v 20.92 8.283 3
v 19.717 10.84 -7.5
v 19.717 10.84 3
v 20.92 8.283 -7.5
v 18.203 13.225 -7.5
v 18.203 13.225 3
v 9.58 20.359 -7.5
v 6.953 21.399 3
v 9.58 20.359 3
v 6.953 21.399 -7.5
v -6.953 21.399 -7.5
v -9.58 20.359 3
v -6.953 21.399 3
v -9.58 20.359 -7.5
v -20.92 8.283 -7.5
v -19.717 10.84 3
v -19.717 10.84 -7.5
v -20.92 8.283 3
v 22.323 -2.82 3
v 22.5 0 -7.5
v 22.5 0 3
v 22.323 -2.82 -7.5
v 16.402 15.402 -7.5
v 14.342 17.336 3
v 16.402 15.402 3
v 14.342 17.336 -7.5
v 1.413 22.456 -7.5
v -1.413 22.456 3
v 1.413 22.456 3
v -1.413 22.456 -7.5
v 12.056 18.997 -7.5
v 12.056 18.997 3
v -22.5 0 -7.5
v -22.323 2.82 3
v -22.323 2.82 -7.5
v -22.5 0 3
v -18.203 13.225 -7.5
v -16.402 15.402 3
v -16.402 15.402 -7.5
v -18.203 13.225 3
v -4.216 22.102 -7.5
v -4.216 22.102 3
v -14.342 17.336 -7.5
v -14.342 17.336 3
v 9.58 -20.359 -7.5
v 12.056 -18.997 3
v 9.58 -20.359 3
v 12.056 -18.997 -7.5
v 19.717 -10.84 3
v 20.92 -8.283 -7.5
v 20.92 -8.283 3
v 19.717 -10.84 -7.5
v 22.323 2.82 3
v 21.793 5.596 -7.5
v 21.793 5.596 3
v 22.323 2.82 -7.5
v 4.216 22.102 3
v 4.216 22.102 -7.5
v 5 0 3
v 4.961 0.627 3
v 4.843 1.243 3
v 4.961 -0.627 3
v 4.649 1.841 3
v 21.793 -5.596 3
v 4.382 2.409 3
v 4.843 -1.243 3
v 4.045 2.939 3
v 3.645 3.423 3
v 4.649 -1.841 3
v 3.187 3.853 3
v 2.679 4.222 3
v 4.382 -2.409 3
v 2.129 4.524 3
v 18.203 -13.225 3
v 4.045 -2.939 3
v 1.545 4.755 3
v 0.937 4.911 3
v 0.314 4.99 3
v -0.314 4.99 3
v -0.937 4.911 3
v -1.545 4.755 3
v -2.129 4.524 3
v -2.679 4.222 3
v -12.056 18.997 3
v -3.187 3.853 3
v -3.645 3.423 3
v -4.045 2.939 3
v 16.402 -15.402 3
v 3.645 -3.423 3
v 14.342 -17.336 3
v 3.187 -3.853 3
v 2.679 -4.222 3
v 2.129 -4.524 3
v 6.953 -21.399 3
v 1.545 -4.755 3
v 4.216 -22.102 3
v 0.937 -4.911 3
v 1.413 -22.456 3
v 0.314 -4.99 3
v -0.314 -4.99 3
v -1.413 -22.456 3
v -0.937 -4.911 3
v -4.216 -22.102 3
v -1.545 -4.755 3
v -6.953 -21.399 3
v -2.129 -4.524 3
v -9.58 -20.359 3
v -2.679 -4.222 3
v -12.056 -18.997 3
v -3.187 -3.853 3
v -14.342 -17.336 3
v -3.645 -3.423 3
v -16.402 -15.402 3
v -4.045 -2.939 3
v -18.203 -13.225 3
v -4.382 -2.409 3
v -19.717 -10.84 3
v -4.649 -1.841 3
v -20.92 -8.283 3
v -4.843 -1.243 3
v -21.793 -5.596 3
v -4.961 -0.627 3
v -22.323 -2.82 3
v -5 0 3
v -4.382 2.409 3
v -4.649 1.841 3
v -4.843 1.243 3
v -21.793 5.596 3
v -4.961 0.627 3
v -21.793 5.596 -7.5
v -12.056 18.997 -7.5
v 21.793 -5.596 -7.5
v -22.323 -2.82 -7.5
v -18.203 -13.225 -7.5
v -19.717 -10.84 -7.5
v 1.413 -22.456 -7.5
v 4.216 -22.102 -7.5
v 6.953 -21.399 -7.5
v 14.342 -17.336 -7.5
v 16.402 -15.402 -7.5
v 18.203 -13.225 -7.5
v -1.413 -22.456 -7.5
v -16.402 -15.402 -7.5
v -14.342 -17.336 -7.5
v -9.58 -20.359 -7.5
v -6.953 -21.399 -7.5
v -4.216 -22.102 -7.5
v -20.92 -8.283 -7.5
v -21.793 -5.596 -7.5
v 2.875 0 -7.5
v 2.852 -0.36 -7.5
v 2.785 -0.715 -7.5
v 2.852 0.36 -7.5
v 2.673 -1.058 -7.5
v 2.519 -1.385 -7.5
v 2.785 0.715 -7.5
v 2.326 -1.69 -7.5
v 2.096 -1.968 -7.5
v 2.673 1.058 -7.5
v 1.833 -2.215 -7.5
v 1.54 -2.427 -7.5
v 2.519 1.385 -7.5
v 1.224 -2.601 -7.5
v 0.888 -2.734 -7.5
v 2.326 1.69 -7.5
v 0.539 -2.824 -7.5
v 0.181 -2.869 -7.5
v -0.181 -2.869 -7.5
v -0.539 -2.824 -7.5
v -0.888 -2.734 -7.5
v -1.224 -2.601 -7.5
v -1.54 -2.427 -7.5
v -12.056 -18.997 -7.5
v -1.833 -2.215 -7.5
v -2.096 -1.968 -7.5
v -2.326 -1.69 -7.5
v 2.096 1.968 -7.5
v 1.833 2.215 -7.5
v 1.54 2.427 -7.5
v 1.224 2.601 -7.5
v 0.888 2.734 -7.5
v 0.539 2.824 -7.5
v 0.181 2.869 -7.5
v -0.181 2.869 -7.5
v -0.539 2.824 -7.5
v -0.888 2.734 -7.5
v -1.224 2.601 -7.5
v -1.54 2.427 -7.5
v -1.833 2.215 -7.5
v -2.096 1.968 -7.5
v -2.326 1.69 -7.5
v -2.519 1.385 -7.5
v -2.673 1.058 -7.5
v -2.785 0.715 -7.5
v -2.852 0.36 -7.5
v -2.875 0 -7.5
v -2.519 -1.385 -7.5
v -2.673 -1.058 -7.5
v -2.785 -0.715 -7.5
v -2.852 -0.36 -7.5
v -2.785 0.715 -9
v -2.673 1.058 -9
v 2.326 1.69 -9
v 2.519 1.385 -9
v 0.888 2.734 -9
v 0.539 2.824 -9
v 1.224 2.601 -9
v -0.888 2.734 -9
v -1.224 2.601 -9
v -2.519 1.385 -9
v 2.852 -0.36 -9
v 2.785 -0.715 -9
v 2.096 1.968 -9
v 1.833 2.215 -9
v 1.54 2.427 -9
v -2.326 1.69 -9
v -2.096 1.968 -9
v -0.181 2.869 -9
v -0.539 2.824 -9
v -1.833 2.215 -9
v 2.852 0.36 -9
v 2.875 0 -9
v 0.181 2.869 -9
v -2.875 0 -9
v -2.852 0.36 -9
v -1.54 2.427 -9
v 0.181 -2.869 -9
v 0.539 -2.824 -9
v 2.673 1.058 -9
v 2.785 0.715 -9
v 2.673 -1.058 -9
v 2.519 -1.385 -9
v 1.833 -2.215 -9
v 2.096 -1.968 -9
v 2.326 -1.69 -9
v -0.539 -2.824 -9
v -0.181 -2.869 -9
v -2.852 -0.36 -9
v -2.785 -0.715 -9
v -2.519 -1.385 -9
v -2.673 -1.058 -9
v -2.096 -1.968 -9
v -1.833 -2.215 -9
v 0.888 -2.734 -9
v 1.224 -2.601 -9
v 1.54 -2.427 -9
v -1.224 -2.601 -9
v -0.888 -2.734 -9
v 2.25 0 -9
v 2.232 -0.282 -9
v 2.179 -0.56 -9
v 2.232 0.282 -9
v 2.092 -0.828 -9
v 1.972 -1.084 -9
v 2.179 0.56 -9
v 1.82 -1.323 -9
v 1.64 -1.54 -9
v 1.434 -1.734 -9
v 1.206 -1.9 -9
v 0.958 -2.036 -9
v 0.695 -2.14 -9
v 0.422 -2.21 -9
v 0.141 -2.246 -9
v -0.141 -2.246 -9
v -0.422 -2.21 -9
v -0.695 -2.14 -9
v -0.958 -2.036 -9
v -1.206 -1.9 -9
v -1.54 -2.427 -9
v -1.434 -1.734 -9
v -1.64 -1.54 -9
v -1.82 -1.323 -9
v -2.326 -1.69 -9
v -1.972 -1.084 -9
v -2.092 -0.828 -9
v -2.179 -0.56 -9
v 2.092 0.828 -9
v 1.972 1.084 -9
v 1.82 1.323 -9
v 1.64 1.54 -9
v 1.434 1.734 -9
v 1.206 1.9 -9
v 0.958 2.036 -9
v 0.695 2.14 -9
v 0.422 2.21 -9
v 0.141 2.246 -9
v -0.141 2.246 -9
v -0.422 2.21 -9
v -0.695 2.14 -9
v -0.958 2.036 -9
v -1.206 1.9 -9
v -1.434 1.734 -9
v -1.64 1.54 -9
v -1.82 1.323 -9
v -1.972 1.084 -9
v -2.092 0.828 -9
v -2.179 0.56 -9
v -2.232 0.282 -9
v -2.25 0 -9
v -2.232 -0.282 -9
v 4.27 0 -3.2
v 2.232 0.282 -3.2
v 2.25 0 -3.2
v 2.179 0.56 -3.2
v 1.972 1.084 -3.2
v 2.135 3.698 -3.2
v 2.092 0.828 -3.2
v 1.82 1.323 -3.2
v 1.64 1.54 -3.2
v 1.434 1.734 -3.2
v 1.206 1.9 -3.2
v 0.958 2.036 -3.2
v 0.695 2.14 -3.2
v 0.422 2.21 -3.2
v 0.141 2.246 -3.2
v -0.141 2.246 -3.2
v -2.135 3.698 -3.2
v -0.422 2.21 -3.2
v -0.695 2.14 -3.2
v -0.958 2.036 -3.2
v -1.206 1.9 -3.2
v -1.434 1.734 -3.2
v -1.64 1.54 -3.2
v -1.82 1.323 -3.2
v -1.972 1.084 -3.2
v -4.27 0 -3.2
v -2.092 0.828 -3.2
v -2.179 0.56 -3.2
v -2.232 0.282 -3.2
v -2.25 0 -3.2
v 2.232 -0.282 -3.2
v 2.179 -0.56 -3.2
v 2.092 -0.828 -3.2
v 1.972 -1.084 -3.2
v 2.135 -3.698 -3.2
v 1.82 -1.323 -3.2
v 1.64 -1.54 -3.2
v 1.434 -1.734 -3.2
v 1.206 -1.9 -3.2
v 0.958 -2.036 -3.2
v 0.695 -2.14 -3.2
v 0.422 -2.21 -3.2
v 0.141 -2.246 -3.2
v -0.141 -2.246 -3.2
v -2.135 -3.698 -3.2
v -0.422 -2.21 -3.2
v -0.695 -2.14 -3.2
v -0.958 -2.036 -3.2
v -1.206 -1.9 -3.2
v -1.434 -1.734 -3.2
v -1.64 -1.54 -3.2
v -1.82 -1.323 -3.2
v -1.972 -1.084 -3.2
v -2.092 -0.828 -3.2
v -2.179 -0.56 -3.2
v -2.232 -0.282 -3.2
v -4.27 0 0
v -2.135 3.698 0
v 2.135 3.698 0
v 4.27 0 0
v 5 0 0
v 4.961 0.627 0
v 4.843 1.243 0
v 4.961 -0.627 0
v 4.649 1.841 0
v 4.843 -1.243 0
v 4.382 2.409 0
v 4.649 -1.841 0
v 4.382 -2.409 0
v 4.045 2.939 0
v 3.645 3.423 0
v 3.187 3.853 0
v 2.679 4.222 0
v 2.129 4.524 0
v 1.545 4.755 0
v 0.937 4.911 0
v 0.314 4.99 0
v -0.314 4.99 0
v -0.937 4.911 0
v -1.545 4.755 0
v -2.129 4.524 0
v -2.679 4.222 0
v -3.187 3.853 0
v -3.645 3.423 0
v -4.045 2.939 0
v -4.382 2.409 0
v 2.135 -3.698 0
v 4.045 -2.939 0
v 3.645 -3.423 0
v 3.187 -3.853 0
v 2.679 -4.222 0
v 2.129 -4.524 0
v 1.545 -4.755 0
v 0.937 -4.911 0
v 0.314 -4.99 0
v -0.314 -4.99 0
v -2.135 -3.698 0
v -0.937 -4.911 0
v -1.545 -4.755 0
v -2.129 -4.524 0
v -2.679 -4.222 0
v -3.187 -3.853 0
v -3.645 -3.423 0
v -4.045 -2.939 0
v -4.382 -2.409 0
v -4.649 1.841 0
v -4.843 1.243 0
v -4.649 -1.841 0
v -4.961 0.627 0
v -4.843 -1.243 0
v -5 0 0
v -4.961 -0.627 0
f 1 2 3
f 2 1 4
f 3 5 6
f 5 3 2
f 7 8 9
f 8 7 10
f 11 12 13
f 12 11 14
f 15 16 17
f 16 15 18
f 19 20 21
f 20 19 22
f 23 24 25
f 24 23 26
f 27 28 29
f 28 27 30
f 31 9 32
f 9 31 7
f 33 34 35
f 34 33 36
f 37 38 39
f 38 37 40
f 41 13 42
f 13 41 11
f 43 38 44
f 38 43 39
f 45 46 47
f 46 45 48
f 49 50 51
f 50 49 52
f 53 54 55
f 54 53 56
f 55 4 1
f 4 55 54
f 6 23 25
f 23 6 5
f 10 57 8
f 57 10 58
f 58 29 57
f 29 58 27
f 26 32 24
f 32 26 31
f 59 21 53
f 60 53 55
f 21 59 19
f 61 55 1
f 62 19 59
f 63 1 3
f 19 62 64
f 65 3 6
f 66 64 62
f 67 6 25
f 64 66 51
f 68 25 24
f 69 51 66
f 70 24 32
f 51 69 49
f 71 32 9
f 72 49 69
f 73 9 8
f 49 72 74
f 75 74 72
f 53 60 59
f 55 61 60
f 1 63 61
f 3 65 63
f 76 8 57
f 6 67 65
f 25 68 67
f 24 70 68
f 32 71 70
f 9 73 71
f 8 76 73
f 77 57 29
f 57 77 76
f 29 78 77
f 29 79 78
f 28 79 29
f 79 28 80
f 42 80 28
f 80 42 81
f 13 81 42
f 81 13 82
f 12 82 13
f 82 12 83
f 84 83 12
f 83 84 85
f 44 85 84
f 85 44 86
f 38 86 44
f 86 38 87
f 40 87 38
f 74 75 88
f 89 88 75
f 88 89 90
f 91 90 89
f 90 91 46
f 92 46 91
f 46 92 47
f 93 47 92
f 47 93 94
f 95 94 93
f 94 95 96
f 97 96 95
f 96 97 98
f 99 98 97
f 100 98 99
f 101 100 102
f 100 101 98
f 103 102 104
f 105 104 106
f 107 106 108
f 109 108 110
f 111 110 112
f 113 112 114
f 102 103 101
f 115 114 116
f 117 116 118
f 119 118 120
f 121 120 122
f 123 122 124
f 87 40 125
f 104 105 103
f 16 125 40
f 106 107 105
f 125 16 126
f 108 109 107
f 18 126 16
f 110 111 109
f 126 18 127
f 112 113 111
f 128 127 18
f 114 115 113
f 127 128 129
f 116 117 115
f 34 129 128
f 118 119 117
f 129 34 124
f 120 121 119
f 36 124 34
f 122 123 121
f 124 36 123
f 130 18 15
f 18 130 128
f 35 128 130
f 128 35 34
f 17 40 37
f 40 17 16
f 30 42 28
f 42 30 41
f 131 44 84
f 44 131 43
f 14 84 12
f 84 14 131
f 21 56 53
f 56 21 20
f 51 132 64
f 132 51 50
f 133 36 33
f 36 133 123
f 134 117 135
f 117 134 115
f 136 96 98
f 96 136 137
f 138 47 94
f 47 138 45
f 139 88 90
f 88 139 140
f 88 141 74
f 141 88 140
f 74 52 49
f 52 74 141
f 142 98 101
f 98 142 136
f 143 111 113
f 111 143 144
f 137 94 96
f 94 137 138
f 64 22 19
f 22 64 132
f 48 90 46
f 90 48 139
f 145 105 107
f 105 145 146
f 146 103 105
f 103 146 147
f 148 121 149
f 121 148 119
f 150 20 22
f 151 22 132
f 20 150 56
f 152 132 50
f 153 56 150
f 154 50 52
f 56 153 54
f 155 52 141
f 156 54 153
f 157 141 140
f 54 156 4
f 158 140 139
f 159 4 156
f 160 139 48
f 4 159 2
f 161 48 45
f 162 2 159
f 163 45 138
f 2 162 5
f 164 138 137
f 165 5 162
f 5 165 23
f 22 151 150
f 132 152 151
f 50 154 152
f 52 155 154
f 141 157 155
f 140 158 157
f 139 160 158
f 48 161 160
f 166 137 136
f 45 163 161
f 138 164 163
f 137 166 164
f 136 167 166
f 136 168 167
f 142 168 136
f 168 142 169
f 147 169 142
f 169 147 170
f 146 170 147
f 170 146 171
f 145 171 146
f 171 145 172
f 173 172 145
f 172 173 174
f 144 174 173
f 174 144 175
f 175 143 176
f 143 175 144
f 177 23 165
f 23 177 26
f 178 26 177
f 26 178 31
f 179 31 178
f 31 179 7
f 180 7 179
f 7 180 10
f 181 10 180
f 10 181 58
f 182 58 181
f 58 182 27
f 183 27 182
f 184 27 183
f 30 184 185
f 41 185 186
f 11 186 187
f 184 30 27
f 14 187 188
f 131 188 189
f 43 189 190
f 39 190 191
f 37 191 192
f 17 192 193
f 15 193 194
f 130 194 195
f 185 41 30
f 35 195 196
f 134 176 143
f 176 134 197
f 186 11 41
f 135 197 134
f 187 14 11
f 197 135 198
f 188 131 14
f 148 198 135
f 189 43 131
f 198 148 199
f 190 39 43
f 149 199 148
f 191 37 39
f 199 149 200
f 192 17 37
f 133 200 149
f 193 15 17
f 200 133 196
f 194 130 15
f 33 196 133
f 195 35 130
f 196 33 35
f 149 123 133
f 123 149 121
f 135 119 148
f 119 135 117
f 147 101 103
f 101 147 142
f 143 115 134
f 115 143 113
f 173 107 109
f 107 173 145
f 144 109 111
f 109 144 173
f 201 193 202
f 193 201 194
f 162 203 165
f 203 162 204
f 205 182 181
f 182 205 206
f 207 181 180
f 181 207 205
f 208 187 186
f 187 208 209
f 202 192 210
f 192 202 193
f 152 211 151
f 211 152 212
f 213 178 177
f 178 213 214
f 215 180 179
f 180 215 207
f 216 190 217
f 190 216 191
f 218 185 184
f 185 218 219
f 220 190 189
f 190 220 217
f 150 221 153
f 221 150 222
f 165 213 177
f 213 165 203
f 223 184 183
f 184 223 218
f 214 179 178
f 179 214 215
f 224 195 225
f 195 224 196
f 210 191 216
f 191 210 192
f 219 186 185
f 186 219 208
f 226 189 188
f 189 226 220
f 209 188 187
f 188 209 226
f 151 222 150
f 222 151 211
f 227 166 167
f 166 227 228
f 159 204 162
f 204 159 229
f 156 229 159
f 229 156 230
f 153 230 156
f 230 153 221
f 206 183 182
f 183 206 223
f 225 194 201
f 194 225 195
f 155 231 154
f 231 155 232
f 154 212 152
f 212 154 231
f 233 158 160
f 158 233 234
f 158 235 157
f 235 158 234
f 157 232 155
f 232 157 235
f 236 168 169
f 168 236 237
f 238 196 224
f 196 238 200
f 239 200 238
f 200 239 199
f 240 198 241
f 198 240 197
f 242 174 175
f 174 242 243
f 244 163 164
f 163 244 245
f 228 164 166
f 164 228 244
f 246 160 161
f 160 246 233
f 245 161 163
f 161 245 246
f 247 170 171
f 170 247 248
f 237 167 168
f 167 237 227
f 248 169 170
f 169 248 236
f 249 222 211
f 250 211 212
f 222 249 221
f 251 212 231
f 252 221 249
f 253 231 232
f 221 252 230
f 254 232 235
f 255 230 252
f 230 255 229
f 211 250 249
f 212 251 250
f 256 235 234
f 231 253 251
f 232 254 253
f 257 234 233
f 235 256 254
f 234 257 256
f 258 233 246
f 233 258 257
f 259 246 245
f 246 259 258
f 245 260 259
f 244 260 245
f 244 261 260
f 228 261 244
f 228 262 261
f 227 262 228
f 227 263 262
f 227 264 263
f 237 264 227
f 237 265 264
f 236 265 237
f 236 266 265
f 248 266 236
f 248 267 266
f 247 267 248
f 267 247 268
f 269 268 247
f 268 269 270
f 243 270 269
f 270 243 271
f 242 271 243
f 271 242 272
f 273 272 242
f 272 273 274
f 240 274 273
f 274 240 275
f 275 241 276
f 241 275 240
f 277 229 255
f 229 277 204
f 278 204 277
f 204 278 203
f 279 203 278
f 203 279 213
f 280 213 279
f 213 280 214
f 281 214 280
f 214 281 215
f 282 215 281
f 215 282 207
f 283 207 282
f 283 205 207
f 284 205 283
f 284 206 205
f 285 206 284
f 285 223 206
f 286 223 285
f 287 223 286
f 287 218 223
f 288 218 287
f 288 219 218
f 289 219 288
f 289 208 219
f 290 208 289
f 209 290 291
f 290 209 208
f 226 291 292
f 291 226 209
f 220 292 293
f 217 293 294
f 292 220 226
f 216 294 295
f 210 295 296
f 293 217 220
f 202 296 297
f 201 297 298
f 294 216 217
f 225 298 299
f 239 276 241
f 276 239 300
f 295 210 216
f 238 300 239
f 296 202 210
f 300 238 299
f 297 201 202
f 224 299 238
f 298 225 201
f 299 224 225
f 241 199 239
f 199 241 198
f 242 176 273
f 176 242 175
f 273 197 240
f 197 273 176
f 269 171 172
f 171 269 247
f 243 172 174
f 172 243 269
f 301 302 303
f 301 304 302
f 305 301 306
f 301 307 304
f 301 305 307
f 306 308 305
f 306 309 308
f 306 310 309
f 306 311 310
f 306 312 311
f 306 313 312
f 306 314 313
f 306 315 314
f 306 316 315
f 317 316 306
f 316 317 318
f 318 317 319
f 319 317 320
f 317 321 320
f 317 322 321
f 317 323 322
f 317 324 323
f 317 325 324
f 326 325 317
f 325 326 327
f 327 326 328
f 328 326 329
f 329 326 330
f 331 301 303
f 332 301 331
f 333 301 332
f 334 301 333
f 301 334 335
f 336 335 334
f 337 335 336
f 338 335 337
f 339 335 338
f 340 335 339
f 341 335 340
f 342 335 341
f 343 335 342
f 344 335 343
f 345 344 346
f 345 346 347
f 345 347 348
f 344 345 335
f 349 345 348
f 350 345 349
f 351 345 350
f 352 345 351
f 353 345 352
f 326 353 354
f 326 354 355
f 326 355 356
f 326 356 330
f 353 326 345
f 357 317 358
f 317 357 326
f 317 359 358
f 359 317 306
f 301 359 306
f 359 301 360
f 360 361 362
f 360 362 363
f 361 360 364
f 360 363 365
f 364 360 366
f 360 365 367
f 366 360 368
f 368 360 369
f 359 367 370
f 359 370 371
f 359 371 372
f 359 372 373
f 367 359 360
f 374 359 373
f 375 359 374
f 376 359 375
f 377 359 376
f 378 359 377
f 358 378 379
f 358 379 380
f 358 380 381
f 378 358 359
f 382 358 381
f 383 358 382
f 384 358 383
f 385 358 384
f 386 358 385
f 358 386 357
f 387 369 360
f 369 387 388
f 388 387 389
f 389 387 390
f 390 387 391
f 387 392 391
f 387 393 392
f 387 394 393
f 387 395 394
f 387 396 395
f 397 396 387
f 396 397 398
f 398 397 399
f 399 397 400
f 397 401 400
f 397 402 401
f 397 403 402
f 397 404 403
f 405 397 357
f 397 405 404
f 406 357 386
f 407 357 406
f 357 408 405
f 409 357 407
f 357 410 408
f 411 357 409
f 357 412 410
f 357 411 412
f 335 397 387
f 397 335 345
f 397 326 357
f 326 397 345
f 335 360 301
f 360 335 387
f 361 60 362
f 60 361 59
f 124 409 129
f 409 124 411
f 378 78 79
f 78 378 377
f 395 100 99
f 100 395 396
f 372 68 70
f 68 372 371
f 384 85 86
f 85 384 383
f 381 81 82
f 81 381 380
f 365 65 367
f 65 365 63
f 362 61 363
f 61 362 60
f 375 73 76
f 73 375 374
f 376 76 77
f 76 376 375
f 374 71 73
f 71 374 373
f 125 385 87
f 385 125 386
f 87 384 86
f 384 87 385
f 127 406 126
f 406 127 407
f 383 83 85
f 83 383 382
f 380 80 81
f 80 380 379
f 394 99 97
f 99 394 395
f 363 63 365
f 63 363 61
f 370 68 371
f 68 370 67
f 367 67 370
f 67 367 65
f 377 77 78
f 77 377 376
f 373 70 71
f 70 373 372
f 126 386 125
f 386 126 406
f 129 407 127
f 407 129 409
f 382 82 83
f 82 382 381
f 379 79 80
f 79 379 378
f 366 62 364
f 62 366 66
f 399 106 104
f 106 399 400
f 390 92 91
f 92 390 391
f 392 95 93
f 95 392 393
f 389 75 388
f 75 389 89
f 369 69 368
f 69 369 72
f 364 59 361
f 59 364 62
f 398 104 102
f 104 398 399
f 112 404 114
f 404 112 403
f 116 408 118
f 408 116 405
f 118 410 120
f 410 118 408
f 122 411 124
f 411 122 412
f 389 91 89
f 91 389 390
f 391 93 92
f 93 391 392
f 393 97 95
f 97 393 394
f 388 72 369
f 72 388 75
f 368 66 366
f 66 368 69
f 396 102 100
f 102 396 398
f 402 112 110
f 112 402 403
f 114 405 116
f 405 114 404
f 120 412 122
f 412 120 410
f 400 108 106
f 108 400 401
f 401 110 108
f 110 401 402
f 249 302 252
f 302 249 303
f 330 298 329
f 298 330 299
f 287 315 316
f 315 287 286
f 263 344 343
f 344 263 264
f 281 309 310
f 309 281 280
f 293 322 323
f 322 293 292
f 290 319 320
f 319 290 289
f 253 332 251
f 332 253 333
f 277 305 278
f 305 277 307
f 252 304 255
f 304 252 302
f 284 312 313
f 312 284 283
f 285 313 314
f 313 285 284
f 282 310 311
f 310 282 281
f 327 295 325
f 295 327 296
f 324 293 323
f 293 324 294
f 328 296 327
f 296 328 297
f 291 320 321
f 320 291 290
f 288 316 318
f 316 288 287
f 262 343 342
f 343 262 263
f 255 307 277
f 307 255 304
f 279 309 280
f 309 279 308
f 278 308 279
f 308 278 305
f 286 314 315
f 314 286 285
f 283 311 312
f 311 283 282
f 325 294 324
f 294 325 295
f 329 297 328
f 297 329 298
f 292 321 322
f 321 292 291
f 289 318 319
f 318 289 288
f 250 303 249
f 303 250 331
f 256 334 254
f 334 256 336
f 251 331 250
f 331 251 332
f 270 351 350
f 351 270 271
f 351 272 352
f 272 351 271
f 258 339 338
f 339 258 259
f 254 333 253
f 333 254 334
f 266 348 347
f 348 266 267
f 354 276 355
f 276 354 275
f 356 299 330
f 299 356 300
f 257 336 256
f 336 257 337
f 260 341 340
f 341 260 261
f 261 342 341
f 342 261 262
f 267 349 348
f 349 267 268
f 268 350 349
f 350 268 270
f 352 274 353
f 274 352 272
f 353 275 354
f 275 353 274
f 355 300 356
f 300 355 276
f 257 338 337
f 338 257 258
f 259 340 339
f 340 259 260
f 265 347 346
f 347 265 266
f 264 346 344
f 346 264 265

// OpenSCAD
$fn = 50;


difference() {
	union() {
		translate(v = [0, 0, -7.5000000000]) {
			cylinder(h = 10.5000000000, r = 22.5000000000);
		}
		#translate(v = [0, 0, -9.0000000000]) {
			cylinder(h = 9, r = 2.8750000000);
		}
	}
	union() {
		translate(v = [0, 0, 0]) {
			rotate(a = [0, 0, 0]) {
				difference() {
					union() {
						translate(v = [0, 0, -3.2000000000]) {
							linear_extrude(height = 3.2000000000) {
								polygon(points = [[4.2698000000, 0.0000000000], [2.1349000000, 3.6977552691], [-2.1349000000, 3.6977552691], [-4.2698000000, 0.0000000000], [-2.1349000000, -3.6977552691], [2.1349000000, -3.6977552691]]);
							}
						}
					}
					union();
				}
			}
		}
		#cylinder(h = 3, r = 5.0000000000);
		#translate(v = [0, 0, -100.0000000000]) {
			cylinder(h = 200, r = 2.2500000000);
		}
	}
}
